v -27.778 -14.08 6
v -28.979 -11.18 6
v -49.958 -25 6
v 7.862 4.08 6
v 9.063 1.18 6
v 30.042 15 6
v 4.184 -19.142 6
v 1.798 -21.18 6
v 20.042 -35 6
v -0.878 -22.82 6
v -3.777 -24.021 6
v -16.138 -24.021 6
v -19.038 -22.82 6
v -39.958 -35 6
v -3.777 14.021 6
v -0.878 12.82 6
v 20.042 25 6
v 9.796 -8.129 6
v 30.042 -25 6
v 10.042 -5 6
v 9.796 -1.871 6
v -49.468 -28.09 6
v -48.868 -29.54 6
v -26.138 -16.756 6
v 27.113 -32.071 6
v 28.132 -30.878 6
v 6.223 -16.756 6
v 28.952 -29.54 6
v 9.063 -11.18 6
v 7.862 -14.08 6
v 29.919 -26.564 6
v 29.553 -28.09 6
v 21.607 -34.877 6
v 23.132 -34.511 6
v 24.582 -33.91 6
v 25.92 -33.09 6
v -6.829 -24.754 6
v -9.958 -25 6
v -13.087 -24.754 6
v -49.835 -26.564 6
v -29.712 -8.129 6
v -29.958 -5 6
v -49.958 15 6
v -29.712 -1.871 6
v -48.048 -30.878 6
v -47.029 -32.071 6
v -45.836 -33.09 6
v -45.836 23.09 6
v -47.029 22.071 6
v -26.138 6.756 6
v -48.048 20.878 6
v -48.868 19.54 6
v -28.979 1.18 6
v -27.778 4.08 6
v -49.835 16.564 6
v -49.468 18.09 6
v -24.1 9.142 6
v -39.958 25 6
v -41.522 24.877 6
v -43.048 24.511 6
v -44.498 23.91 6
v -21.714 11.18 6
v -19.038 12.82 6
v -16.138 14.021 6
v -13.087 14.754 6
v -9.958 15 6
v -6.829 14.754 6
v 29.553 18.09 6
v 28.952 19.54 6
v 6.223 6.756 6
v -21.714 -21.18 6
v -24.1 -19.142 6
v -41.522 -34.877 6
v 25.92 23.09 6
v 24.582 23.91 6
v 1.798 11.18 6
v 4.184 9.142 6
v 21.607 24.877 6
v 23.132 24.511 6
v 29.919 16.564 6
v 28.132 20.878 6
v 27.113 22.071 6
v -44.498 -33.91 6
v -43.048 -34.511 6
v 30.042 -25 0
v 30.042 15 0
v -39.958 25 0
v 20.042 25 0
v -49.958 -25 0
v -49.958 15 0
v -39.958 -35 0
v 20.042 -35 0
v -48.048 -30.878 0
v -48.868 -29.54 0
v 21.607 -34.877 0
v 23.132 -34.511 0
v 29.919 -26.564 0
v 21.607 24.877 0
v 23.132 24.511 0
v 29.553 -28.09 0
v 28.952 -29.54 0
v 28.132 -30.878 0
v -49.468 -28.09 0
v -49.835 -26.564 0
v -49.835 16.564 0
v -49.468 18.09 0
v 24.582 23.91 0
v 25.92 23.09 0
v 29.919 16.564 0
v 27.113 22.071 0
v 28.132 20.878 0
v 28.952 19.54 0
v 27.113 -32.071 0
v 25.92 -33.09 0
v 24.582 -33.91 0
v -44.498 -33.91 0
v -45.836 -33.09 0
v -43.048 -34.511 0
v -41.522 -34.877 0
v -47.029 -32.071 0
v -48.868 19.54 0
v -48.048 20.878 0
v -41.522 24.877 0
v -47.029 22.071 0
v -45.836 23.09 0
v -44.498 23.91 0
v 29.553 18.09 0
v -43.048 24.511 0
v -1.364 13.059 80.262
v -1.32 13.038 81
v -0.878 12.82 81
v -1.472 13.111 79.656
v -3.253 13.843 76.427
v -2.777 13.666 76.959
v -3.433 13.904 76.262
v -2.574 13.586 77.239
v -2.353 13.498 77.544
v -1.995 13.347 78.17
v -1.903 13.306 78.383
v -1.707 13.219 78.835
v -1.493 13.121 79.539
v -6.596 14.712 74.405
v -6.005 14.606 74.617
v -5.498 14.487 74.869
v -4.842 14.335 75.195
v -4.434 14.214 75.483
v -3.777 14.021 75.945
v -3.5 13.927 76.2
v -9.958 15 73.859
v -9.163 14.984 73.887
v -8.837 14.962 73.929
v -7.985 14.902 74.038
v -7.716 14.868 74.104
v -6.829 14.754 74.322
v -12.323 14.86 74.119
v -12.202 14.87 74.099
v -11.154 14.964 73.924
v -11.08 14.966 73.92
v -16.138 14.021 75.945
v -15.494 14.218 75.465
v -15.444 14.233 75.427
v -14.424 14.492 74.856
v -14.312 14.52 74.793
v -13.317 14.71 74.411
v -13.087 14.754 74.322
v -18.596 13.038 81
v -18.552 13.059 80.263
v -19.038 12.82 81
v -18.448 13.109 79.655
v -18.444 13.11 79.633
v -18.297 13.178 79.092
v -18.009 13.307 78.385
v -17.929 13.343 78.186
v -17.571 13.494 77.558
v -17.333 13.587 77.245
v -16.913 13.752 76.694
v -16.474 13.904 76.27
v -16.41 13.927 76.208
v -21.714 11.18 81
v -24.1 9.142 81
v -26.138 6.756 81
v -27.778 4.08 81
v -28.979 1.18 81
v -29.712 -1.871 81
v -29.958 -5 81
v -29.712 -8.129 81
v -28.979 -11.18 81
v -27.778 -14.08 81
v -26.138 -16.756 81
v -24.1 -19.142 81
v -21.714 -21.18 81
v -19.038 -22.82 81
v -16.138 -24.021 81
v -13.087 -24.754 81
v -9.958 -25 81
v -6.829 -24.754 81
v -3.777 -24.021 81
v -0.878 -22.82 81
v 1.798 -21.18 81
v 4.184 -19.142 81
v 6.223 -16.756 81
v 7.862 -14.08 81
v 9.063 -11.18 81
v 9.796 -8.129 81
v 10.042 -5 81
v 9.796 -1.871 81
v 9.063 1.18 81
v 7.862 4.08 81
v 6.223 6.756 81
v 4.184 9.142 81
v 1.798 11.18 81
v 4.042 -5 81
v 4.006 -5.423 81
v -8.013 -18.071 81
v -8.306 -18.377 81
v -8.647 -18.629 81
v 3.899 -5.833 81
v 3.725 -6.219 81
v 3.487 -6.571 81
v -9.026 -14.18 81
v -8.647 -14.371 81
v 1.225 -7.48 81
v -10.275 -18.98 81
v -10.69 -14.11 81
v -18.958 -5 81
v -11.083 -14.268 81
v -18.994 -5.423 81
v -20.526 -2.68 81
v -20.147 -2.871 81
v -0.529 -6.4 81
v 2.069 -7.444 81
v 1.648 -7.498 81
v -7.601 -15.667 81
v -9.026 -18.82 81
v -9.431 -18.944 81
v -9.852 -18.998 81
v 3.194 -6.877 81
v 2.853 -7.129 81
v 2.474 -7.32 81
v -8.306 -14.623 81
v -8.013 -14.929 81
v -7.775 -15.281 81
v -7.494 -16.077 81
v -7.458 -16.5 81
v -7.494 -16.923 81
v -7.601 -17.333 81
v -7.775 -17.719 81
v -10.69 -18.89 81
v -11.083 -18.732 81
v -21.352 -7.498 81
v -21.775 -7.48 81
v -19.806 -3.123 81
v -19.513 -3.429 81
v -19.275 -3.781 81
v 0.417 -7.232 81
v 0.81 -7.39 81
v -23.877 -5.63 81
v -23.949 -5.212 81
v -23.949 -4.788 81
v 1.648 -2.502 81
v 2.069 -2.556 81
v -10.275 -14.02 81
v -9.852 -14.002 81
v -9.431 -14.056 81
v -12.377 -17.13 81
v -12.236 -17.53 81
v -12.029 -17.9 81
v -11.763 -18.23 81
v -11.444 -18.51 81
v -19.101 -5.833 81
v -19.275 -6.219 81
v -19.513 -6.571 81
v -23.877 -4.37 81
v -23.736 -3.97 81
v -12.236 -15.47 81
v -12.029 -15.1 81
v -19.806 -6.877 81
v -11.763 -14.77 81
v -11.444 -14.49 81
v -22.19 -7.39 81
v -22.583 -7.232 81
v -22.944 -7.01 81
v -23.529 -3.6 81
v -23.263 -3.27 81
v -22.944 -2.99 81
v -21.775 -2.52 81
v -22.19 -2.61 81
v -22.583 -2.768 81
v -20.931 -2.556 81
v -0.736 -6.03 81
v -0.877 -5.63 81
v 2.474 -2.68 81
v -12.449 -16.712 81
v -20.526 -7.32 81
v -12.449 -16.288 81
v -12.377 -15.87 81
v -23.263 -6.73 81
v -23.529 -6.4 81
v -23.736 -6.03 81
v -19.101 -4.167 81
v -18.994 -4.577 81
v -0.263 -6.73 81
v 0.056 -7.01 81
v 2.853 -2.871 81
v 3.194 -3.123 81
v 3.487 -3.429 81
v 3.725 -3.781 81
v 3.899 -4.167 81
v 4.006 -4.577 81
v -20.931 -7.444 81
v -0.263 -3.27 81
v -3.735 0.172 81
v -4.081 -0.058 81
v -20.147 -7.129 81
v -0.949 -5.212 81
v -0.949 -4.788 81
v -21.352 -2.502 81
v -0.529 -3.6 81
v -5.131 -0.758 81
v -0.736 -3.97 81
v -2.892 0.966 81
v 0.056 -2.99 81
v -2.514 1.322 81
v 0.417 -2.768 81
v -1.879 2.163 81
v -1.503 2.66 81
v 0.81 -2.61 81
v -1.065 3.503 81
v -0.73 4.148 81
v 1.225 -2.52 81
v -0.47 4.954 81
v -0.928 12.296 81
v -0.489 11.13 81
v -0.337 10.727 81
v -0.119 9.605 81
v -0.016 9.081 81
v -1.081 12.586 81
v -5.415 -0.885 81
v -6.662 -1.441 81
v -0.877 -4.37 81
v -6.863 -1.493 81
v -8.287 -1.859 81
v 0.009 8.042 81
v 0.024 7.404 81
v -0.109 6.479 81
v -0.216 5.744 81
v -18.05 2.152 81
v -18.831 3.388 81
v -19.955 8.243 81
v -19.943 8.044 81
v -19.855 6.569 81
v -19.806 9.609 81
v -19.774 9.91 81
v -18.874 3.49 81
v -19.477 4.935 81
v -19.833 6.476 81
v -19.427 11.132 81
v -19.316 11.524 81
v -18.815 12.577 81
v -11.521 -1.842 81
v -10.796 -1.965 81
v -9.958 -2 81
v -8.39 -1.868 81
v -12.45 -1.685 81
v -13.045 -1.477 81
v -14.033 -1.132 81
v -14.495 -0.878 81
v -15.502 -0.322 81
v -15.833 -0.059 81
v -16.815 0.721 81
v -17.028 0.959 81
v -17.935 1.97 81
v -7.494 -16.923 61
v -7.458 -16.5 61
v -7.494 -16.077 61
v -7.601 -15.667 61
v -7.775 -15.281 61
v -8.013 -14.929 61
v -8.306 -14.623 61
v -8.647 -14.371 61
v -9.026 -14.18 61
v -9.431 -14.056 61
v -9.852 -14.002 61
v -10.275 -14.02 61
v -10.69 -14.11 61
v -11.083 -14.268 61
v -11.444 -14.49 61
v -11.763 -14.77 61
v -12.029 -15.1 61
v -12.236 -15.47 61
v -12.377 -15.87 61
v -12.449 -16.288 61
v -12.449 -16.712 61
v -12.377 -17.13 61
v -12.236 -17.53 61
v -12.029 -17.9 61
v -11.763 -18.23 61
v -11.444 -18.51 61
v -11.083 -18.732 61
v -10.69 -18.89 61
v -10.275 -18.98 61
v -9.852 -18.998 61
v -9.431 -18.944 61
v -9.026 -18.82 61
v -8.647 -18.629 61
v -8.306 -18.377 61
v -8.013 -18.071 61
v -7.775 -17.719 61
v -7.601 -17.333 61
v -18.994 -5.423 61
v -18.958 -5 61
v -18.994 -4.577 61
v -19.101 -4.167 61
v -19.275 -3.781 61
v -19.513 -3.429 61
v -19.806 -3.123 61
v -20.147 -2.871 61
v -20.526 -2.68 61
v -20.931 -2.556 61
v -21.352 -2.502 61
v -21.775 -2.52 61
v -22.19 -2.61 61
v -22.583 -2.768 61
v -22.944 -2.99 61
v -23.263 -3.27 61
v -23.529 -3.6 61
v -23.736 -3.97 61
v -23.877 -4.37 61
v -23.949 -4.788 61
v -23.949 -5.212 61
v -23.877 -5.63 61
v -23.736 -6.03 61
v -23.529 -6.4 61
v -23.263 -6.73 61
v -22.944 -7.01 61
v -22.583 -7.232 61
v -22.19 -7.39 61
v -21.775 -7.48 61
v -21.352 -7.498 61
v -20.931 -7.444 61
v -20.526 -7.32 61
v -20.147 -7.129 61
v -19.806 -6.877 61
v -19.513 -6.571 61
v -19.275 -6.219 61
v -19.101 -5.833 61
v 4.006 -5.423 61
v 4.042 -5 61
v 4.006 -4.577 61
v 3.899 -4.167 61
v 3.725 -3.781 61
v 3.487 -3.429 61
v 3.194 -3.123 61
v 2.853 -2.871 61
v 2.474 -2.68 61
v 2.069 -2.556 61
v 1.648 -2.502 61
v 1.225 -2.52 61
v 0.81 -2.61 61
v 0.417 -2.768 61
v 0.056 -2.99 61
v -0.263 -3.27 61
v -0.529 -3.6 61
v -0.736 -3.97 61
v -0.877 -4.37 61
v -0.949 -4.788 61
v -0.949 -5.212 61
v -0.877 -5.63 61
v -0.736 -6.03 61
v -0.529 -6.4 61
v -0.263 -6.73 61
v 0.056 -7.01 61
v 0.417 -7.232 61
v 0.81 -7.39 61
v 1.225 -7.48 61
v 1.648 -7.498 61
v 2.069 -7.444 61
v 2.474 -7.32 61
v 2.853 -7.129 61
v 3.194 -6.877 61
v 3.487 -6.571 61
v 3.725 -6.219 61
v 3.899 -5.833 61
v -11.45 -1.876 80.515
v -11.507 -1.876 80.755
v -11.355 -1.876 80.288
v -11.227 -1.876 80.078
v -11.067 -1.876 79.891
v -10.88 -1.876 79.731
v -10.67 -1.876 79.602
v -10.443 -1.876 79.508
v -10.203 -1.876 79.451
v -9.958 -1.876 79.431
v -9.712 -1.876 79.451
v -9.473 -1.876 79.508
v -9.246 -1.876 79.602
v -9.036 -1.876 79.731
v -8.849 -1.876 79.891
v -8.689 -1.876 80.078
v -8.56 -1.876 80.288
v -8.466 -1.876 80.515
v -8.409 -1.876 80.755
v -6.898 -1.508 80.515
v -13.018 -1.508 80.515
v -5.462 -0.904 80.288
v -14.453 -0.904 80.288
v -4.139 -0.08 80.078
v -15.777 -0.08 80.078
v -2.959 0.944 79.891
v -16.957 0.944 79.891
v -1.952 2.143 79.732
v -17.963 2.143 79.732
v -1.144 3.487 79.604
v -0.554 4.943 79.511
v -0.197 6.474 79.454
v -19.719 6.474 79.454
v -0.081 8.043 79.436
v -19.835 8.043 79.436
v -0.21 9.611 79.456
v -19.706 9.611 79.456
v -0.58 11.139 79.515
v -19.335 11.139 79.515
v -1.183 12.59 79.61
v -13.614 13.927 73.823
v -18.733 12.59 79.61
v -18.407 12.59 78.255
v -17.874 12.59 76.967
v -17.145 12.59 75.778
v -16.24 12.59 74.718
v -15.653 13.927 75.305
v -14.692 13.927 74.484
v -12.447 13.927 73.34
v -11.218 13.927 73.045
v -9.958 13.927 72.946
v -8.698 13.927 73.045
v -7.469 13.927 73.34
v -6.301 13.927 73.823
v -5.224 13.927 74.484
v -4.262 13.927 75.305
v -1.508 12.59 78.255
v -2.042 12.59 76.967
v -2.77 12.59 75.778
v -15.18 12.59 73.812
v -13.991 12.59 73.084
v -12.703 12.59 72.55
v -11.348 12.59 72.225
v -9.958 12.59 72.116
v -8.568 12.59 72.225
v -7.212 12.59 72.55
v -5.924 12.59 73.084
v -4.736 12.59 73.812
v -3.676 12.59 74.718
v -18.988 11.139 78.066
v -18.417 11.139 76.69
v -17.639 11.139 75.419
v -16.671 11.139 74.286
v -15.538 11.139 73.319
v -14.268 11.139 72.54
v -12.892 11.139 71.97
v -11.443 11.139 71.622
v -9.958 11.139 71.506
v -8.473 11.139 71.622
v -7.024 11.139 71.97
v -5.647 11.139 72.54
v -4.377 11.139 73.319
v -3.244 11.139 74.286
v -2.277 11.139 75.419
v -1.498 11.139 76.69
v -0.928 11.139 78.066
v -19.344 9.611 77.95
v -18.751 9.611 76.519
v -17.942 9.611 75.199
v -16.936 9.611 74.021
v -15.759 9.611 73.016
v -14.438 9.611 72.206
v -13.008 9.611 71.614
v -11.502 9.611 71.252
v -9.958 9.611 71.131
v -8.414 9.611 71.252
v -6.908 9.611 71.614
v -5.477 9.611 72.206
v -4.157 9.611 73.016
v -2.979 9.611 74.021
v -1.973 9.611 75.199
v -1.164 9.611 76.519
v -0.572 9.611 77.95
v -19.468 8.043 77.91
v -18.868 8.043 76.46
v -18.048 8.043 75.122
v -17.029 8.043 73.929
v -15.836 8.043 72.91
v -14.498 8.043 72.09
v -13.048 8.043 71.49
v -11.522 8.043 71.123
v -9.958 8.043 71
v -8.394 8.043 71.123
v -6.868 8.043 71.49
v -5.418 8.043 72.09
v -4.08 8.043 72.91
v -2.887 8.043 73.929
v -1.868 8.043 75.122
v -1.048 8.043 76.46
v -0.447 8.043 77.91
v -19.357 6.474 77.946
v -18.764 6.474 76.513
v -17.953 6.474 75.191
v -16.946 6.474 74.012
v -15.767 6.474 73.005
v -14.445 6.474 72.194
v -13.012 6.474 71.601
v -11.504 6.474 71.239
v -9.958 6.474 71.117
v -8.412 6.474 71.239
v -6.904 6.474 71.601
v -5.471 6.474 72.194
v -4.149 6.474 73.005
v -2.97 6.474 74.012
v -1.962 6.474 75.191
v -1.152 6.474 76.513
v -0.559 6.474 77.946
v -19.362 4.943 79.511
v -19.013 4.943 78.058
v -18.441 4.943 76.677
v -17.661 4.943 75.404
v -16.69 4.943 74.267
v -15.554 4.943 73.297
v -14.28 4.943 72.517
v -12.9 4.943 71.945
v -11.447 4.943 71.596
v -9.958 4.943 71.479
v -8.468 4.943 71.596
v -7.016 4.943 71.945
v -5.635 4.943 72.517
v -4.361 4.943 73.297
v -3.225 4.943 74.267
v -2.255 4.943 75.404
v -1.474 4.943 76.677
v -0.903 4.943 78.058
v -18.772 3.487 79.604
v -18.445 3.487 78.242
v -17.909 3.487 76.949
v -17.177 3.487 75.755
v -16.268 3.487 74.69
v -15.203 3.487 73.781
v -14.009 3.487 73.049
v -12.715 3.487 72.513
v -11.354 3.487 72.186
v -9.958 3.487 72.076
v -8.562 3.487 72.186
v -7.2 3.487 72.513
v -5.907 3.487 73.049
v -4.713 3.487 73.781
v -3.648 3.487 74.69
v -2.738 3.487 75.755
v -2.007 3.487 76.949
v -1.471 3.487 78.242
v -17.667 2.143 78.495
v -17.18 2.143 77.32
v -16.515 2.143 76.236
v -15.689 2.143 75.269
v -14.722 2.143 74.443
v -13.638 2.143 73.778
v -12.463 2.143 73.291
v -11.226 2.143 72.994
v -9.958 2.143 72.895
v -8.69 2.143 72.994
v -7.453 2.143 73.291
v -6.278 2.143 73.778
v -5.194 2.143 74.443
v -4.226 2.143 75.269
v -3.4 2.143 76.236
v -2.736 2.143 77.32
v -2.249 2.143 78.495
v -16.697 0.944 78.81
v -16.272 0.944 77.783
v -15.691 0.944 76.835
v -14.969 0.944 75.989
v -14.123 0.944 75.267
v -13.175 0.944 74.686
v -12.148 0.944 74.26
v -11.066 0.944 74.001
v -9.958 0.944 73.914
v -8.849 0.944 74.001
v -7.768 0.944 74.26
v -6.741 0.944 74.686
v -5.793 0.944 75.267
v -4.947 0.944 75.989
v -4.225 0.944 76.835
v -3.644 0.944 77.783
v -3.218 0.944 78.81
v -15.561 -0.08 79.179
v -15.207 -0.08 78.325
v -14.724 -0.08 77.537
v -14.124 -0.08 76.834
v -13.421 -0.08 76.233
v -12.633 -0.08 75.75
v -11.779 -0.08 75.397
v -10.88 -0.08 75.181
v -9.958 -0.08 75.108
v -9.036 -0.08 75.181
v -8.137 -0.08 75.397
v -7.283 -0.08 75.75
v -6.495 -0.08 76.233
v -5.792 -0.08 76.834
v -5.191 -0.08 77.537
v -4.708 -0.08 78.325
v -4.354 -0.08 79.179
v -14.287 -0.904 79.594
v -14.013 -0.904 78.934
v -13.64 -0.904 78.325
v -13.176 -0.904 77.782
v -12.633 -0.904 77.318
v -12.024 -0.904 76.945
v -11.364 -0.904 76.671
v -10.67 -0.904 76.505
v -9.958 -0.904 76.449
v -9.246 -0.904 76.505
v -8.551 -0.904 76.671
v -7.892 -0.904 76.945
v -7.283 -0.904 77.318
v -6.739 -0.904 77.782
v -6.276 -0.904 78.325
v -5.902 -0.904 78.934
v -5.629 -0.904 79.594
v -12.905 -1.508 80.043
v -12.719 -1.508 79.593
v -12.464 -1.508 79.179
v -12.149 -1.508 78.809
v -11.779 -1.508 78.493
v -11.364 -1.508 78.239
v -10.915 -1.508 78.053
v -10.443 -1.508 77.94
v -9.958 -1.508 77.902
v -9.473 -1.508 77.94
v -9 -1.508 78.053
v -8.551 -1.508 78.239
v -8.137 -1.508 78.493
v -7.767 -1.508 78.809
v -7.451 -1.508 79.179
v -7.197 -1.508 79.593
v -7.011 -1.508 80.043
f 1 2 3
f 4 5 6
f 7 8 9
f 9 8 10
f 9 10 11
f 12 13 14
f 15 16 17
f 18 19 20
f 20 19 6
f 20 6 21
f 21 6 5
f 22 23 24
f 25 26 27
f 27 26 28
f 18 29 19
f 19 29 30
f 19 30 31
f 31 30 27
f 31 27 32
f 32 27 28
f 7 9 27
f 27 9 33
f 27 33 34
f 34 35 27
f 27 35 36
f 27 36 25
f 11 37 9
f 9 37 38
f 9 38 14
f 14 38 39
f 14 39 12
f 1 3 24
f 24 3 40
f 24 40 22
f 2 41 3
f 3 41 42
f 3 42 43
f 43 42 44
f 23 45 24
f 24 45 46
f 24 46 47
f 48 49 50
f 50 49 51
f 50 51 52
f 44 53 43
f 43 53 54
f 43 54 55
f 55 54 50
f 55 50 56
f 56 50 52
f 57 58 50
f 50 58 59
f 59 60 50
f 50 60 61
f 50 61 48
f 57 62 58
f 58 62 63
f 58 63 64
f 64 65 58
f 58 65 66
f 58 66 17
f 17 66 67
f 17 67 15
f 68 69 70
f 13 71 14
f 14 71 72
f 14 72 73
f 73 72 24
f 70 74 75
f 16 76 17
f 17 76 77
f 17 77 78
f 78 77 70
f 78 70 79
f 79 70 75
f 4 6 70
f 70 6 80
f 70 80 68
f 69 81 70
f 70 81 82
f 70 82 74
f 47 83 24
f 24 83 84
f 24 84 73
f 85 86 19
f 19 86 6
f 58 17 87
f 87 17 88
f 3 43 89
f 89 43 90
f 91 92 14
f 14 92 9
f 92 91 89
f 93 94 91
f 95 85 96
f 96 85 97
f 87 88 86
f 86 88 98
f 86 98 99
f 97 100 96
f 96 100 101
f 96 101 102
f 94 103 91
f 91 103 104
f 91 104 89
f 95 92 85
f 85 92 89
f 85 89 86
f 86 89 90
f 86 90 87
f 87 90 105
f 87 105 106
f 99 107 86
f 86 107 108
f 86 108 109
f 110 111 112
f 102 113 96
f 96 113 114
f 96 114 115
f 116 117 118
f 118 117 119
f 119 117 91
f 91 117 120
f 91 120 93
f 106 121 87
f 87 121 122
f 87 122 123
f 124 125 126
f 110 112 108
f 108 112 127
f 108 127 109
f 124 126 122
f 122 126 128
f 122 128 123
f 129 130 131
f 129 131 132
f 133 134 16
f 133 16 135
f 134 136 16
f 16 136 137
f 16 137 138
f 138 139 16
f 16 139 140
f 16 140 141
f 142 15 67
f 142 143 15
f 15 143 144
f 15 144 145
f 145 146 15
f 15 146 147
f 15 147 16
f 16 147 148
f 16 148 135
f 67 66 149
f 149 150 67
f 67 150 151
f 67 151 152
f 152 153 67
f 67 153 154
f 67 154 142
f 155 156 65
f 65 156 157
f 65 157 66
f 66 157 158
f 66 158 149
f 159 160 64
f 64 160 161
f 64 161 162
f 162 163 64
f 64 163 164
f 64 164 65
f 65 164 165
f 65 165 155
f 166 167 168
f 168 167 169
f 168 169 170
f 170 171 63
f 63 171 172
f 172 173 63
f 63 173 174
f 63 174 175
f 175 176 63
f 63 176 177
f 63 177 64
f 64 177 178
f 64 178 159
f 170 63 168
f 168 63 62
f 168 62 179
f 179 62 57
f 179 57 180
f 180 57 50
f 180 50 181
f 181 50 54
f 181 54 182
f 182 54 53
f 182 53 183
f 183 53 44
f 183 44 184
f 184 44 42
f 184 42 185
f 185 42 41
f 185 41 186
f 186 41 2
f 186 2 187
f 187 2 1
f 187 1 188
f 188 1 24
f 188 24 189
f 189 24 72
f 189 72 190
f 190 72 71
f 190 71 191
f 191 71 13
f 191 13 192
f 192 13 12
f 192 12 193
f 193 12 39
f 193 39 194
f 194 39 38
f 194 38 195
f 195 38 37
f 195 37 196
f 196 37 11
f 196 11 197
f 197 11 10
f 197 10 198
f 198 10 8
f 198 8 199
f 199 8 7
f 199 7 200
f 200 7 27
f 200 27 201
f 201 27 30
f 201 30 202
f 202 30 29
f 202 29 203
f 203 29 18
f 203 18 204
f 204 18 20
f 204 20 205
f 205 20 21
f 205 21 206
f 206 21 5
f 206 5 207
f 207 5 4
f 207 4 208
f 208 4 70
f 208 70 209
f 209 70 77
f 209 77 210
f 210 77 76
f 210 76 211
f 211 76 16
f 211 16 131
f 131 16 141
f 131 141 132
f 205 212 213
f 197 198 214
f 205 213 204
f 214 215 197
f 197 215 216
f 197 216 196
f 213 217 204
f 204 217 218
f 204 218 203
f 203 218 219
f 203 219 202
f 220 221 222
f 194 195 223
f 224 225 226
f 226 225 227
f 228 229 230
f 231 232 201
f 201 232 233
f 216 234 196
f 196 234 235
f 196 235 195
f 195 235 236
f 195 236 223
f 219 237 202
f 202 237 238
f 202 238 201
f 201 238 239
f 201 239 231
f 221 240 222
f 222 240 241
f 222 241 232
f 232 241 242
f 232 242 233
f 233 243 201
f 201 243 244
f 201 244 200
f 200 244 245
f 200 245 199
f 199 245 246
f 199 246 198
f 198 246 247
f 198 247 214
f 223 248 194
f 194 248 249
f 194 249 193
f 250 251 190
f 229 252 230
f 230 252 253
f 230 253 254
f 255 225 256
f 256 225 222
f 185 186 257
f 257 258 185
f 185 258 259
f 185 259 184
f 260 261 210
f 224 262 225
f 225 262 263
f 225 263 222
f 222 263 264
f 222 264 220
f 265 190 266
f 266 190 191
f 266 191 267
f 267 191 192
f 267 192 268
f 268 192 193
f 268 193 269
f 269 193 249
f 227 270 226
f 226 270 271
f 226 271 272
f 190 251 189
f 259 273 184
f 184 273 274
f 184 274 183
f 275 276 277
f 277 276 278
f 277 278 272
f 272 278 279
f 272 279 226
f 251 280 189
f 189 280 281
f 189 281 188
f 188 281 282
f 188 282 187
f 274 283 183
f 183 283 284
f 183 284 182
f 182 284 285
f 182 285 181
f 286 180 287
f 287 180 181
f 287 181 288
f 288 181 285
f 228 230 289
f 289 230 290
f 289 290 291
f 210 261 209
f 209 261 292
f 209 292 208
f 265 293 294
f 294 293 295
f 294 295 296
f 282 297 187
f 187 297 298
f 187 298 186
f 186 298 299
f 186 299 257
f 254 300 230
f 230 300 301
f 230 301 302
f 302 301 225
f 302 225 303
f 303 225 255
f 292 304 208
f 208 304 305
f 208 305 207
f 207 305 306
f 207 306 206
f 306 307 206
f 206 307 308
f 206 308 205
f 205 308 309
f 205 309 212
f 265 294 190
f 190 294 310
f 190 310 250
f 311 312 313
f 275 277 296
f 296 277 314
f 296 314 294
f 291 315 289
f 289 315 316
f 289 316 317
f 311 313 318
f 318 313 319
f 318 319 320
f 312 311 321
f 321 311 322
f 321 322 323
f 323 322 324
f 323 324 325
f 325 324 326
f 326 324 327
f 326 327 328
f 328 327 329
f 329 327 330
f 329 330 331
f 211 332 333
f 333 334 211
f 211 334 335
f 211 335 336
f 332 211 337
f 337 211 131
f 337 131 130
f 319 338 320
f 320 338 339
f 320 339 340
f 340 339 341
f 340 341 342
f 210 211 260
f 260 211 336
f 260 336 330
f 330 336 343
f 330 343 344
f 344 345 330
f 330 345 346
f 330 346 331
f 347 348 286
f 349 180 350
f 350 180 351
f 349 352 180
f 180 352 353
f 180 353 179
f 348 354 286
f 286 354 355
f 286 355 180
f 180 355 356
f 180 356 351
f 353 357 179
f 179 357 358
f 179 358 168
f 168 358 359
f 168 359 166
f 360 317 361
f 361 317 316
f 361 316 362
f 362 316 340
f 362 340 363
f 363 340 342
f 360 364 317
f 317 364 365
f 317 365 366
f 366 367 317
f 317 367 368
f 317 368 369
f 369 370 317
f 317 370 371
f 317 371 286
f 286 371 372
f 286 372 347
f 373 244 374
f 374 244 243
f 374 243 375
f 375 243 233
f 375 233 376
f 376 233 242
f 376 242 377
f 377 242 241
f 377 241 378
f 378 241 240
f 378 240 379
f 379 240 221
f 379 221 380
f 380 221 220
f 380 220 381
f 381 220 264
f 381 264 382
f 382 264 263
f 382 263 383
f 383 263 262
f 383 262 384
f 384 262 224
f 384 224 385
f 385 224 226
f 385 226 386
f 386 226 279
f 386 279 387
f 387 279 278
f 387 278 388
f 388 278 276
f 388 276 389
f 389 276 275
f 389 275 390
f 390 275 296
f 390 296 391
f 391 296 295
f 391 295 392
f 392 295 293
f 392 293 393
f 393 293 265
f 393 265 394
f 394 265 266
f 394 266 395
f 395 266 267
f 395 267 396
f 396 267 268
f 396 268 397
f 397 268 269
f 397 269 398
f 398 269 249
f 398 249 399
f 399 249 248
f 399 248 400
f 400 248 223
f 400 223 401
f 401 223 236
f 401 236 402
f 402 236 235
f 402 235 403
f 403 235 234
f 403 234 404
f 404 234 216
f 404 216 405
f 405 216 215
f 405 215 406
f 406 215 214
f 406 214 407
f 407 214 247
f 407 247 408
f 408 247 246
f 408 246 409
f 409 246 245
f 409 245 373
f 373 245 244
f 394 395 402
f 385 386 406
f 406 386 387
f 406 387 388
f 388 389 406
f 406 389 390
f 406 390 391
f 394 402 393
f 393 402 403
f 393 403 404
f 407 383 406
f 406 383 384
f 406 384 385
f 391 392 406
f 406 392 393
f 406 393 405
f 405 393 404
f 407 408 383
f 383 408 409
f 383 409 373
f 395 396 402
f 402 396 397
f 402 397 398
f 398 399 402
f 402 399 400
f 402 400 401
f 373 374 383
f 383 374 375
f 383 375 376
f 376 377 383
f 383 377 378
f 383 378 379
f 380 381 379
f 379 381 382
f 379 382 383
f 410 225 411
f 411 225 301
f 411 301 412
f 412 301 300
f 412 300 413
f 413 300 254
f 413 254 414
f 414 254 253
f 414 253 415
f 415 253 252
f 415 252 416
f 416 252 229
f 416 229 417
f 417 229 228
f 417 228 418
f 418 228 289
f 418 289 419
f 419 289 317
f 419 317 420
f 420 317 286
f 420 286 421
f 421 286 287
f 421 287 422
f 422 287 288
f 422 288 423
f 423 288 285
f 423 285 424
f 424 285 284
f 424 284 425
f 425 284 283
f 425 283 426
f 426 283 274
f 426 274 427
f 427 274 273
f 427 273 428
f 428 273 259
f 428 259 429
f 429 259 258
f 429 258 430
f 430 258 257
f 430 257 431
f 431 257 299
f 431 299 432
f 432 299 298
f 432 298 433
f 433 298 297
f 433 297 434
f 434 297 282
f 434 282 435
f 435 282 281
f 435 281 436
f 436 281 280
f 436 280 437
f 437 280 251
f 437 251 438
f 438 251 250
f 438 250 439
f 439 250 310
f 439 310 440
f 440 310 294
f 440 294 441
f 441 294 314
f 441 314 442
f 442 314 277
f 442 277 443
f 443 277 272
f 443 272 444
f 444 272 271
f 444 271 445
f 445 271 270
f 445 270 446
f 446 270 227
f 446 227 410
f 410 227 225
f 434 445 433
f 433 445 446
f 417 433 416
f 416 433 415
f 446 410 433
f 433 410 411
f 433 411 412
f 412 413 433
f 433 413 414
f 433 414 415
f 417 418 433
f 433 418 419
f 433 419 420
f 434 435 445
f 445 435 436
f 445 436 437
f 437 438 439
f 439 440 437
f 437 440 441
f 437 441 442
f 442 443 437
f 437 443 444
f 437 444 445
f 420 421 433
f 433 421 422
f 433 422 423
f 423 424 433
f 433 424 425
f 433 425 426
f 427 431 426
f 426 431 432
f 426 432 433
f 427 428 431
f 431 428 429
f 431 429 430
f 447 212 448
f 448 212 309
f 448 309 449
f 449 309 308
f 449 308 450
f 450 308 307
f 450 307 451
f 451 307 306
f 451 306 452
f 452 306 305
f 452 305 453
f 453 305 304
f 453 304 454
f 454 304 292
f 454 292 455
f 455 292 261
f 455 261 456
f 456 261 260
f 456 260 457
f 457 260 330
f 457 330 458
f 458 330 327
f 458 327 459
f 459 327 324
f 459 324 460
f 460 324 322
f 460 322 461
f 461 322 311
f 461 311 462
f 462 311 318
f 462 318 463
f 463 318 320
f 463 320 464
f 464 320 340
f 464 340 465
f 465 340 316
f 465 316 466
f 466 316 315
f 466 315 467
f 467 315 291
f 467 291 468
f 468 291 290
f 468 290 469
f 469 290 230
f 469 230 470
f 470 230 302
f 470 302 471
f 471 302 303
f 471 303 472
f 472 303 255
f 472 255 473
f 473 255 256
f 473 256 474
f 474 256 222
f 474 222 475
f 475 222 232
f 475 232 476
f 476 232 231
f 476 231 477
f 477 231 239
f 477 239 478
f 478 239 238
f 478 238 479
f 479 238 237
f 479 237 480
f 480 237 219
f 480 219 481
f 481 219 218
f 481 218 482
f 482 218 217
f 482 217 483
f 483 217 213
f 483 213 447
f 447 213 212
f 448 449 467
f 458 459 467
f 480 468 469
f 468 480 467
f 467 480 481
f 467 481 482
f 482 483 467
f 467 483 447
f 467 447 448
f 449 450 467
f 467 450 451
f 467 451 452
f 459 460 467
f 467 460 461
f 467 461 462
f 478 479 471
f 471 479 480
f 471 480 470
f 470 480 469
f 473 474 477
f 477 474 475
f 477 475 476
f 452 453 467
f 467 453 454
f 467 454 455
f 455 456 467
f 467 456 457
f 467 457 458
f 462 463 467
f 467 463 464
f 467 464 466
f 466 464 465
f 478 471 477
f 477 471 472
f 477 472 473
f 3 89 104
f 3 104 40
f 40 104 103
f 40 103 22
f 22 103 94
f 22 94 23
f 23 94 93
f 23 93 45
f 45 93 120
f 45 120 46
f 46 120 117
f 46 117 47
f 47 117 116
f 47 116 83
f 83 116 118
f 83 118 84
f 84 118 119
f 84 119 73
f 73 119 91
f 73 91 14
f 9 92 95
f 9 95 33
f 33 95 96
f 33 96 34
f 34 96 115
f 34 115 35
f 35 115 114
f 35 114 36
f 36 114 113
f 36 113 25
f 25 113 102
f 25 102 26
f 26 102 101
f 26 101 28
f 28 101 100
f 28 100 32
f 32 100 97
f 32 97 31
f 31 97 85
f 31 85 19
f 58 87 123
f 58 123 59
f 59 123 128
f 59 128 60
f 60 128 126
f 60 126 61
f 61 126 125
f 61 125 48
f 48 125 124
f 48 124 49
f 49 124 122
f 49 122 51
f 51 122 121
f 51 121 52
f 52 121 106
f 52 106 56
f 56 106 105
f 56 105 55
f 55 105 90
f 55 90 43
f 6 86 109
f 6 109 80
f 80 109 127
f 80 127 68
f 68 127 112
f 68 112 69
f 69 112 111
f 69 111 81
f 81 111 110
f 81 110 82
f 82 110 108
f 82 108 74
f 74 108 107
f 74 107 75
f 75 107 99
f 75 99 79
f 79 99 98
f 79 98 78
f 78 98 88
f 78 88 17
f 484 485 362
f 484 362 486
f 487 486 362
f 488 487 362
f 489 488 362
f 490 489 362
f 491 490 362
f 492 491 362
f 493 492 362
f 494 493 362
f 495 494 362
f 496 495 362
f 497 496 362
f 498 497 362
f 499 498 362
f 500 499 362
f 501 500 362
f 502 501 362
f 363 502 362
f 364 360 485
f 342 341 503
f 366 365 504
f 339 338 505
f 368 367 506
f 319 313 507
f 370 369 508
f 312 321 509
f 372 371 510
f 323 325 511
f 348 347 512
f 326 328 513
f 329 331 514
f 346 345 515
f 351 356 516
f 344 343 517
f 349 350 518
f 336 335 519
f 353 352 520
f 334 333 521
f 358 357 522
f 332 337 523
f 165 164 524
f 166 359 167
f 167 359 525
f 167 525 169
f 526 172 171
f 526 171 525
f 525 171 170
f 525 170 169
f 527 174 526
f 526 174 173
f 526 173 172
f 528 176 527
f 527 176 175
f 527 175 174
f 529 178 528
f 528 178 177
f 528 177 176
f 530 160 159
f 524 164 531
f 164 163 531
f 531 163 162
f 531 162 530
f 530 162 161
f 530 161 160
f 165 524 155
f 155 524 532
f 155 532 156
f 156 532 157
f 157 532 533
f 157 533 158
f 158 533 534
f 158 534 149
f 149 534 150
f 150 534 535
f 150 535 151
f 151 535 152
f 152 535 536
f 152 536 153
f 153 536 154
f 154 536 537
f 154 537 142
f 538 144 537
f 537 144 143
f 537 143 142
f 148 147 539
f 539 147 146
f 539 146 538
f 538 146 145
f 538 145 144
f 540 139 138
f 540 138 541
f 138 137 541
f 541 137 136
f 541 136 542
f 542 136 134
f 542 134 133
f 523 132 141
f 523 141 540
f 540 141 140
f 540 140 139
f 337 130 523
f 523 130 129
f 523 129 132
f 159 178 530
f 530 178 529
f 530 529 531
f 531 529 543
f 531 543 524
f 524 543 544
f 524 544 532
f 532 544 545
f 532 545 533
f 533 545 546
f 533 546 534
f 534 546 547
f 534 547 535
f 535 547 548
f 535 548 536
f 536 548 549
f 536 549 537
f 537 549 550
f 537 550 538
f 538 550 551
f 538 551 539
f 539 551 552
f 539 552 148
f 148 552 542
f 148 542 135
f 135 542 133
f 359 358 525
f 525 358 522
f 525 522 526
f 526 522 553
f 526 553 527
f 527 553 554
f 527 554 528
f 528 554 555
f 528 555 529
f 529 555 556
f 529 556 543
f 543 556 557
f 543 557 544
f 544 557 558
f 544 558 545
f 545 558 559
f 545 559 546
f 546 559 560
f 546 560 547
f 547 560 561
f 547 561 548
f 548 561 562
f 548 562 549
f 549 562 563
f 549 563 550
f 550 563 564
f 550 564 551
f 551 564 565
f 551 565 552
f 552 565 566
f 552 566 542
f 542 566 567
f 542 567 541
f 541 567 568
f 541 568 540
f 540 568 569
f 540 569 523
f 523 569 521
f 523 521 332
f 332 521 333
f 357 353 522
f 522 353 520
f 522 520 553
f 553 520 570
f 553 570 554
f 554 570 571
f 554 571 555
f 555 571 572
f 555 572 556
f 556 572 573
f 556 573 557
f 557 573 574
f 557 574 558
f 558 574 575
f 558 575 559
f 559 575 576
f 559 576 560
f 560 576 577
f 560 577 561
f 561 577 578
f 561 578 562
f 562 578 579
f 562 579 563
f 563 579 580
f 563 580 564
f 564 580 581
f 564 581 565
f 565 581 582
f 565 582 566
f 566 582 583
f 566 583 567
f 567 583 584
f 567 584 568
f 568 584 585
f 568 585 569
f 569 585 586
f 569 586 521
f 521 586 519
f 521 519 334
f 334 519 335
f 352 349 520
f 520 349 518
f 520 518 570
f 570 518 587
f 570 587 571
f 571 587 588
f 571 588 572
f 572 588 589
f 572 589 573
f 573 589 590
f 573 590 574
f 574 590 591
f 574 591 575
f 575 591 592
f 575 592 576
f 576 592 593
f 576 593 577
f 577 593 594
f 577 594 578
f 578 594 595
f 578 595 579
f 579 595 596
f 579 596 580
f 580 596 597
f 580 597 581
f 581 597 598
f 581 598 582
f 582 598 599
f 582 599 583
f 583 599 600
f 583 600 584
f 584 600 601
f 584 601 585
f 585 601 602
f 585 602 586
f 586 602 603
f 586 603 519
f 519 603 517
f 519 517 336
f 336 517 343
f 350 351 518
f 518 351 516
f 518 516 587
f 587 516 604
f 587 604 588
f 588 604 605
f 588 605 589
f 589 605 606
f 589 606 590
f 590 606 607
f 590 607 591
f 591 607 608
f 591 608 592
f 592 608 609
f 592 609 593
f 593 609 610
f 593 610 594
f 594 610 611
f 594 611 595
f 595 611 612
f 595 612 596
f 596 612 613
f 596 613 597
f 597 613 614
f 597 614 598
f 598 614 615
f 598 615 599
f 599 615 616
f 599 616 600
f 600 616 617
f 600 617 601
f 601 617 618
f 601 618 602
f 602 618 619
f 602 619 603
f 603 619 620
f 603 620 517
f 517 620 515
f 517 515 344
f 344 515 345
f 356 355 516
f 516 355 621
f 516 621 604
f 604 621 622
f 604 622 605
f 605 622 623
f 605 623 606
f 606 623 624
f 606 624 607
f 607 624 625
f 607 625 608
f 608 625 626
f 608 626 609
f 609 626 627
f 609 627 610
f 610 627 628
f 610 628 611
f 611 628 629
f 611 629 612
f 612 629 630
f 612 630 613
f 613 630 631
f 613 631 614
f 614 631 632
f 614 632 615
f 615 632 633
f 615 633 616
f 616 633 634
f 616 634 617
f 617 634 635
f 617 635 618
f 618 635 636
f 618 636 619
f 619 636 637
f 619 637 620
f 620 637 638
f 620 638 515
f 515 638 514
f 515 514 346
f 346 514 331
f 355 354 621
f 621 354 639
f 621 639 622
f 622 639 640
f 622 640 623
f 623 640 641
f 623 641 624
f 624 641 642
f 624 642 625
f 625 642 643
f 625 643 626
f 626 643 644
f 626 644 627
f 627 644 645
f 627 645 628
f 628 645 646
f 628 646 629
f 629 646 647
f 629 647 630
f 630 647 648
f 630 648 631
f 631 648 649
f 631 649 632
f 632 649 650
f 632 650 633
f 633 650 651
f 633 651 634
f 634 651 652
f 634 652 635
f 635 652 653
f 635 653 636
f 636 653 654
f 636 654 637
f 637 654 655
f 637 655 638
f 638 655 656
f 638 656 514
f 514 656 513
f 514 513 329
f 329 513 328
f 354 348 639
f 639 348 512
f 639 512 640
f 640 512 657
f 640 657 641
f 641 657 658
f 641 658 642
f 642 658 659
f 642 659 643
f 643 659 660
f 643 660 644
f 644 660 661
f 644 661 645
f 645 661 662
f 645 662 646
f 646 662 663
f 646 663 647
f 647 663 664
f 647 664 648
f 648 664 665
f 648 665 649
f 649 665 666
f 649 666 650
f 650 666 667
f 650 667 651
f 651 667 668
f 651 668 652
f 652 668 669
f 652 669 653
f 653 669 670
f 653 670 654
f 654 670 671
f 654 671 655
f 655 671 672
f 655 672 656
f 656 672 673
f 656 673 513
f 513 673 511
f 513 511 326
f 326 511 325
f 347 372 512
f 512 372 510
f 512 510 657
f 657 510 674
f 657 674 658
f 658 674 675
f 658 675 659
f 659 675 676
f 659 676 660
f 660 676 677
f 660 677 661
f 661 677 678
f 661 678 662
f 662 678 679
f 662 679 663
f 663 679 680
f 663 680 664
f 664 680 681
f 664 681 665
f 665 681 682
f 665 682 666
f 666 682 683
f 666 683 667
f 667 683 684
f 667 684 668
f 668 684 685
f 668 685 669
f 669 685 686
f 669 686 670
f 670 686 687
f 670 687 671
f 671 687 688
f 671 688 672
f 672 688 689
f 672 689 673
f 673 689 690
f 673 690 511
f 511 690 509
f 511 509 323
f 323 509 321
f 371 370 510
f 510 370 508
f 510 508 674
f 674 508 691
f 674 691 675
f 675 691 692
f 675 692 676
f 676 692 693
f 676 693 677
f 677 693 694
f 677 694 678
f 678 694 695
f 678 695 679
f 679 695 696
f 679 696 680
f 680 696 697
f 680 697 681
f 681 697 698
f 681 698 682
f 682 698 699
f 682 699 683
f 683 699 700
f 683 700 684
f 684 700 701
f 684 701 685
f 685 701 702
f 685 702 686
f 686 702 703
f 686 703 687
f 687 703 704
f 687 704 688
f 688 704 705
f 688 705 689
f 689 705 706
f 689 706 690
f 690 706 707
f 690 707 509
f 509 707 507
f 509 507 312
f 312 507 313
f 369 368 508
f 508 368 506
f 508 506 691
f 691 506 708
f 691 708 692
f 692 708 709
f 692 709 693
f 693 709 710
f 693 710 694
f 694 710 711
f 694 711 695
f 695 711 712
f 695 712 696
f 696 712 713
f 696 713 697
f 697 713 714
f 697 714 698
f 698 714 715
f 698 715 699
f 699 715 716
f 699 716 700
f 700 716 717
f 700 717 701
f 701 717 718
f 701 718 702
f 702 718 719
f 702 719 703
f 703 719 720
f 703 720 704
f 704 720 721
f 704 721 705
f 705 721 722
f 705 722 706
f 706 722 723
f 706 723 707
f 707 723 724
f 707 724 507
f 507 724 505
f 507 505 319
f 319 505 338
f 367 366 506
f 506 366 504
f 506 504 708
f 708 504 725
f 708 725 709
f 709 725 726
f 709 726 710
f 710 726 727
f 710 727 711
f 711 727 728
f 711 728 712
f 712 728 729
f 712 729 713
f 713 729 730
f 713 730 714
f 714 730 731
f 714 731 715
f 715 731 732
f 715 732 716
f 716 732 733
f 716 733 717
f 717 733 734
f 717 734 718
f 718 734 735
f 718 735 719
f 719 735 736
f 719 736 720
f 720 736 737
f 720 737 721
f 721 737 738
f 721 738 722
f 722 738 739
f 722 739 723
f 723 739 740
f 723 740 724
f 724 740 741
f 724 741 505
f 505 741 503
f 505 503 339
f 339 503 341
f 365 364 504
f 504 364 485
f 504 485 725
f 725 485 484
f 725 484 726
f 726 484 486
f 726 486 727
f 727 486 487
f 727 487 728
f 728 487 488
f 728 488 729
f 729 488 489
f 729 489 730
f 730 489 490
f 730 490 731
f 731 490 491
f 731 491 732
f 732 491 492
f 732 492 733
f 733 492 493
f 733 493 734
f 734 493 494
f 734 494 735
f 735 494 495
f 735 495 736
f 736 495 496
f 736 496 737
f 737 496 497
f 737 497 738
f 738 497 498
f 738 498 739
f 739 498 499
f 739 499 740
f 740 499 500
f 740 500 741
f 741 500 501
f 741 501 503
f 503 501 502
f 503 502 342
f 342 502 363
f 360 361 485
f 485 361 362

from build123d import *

# Parameters (mm, degrees)
SKETCH_1_W          = 80
SKETCH_1_H          = 60
EXTRUDE_1_DEPTH     = 6
SKETCH_2_R          = 20
EXTRUDE_2_DEPTH     = 75
SKETCH_7_R          = 2.5
CUT_EXTRUDE_2_DEPTH = 20
FILLET_1_R          = 10
CUT_REVOLVE_1_ANGLE = 180


with BuildPart() as part:
    # 草图1 → 凸台-拉伸1 (new body)
    with BuildSketch(Plane.XY):
        with Locations((-9.9578316, -5)):
            Rectangle(SKETCH_1_W, SKETCH_1_H)
    extrude(amount=EXTRUDE_1_DEPTH)

    # 草图2 → 凸台-拉伸2 (add)
    with BuildSketch(Plane.XY.offset(6)):
        with Locations((-9.9578316, -5)):
            Circle(SKETCH_2_R)
    extrude(amount=EXTRUDE_2_DEPTH)

    # 草图7 → 切除-拉伸2 (cut)
    with BuildSketch(Plane.XY.offset(81)):
        with Locations((-9.9578316, -16.5)):
            Circle(SKETCH_7_R)
        with Locations((-21.4578316, -5)):
            Circle(SKETCH_7_R)
        with Locations((1.5421684, -5)):
            Circle(SKETCH_7_R)
    extrude(amount=-CUT_EXTRUDE_2_DEPTH, mode=Mode.SUBTRACT)

    # 圆角1
    fillet_1_edges = [part.edges().sort_by_distance(p)[0] for p in [
        (30.0421684, -35, 3),
        (-49.9578316, -35, 3),
        (-49.9578316, 25, 3),
        (30.0421684, 25, 3),
    ]]
    fillet(fillet_1_edges, radius=FILLET_1_R)

    # 草图4 → 切除-旋转1 (revolve, cut)
    with BuildSketch(Plane.XY.offset(81)):
        with BuildLine():
            Line((-9.9578316, -2), (-9.9578316, 18))
            ThreePointArc((-9.9578316, 18), (0.0421684, 8), (-9.9578316, -2))
        make_face()
    revolve(axis=Axis((-9.9578316, -2, 81), (0, 1, 0)), revolution_arc=CUT_REVOLVE_1_ANGLE, mode=Mode.SUBTRACT)


solid = part.part
